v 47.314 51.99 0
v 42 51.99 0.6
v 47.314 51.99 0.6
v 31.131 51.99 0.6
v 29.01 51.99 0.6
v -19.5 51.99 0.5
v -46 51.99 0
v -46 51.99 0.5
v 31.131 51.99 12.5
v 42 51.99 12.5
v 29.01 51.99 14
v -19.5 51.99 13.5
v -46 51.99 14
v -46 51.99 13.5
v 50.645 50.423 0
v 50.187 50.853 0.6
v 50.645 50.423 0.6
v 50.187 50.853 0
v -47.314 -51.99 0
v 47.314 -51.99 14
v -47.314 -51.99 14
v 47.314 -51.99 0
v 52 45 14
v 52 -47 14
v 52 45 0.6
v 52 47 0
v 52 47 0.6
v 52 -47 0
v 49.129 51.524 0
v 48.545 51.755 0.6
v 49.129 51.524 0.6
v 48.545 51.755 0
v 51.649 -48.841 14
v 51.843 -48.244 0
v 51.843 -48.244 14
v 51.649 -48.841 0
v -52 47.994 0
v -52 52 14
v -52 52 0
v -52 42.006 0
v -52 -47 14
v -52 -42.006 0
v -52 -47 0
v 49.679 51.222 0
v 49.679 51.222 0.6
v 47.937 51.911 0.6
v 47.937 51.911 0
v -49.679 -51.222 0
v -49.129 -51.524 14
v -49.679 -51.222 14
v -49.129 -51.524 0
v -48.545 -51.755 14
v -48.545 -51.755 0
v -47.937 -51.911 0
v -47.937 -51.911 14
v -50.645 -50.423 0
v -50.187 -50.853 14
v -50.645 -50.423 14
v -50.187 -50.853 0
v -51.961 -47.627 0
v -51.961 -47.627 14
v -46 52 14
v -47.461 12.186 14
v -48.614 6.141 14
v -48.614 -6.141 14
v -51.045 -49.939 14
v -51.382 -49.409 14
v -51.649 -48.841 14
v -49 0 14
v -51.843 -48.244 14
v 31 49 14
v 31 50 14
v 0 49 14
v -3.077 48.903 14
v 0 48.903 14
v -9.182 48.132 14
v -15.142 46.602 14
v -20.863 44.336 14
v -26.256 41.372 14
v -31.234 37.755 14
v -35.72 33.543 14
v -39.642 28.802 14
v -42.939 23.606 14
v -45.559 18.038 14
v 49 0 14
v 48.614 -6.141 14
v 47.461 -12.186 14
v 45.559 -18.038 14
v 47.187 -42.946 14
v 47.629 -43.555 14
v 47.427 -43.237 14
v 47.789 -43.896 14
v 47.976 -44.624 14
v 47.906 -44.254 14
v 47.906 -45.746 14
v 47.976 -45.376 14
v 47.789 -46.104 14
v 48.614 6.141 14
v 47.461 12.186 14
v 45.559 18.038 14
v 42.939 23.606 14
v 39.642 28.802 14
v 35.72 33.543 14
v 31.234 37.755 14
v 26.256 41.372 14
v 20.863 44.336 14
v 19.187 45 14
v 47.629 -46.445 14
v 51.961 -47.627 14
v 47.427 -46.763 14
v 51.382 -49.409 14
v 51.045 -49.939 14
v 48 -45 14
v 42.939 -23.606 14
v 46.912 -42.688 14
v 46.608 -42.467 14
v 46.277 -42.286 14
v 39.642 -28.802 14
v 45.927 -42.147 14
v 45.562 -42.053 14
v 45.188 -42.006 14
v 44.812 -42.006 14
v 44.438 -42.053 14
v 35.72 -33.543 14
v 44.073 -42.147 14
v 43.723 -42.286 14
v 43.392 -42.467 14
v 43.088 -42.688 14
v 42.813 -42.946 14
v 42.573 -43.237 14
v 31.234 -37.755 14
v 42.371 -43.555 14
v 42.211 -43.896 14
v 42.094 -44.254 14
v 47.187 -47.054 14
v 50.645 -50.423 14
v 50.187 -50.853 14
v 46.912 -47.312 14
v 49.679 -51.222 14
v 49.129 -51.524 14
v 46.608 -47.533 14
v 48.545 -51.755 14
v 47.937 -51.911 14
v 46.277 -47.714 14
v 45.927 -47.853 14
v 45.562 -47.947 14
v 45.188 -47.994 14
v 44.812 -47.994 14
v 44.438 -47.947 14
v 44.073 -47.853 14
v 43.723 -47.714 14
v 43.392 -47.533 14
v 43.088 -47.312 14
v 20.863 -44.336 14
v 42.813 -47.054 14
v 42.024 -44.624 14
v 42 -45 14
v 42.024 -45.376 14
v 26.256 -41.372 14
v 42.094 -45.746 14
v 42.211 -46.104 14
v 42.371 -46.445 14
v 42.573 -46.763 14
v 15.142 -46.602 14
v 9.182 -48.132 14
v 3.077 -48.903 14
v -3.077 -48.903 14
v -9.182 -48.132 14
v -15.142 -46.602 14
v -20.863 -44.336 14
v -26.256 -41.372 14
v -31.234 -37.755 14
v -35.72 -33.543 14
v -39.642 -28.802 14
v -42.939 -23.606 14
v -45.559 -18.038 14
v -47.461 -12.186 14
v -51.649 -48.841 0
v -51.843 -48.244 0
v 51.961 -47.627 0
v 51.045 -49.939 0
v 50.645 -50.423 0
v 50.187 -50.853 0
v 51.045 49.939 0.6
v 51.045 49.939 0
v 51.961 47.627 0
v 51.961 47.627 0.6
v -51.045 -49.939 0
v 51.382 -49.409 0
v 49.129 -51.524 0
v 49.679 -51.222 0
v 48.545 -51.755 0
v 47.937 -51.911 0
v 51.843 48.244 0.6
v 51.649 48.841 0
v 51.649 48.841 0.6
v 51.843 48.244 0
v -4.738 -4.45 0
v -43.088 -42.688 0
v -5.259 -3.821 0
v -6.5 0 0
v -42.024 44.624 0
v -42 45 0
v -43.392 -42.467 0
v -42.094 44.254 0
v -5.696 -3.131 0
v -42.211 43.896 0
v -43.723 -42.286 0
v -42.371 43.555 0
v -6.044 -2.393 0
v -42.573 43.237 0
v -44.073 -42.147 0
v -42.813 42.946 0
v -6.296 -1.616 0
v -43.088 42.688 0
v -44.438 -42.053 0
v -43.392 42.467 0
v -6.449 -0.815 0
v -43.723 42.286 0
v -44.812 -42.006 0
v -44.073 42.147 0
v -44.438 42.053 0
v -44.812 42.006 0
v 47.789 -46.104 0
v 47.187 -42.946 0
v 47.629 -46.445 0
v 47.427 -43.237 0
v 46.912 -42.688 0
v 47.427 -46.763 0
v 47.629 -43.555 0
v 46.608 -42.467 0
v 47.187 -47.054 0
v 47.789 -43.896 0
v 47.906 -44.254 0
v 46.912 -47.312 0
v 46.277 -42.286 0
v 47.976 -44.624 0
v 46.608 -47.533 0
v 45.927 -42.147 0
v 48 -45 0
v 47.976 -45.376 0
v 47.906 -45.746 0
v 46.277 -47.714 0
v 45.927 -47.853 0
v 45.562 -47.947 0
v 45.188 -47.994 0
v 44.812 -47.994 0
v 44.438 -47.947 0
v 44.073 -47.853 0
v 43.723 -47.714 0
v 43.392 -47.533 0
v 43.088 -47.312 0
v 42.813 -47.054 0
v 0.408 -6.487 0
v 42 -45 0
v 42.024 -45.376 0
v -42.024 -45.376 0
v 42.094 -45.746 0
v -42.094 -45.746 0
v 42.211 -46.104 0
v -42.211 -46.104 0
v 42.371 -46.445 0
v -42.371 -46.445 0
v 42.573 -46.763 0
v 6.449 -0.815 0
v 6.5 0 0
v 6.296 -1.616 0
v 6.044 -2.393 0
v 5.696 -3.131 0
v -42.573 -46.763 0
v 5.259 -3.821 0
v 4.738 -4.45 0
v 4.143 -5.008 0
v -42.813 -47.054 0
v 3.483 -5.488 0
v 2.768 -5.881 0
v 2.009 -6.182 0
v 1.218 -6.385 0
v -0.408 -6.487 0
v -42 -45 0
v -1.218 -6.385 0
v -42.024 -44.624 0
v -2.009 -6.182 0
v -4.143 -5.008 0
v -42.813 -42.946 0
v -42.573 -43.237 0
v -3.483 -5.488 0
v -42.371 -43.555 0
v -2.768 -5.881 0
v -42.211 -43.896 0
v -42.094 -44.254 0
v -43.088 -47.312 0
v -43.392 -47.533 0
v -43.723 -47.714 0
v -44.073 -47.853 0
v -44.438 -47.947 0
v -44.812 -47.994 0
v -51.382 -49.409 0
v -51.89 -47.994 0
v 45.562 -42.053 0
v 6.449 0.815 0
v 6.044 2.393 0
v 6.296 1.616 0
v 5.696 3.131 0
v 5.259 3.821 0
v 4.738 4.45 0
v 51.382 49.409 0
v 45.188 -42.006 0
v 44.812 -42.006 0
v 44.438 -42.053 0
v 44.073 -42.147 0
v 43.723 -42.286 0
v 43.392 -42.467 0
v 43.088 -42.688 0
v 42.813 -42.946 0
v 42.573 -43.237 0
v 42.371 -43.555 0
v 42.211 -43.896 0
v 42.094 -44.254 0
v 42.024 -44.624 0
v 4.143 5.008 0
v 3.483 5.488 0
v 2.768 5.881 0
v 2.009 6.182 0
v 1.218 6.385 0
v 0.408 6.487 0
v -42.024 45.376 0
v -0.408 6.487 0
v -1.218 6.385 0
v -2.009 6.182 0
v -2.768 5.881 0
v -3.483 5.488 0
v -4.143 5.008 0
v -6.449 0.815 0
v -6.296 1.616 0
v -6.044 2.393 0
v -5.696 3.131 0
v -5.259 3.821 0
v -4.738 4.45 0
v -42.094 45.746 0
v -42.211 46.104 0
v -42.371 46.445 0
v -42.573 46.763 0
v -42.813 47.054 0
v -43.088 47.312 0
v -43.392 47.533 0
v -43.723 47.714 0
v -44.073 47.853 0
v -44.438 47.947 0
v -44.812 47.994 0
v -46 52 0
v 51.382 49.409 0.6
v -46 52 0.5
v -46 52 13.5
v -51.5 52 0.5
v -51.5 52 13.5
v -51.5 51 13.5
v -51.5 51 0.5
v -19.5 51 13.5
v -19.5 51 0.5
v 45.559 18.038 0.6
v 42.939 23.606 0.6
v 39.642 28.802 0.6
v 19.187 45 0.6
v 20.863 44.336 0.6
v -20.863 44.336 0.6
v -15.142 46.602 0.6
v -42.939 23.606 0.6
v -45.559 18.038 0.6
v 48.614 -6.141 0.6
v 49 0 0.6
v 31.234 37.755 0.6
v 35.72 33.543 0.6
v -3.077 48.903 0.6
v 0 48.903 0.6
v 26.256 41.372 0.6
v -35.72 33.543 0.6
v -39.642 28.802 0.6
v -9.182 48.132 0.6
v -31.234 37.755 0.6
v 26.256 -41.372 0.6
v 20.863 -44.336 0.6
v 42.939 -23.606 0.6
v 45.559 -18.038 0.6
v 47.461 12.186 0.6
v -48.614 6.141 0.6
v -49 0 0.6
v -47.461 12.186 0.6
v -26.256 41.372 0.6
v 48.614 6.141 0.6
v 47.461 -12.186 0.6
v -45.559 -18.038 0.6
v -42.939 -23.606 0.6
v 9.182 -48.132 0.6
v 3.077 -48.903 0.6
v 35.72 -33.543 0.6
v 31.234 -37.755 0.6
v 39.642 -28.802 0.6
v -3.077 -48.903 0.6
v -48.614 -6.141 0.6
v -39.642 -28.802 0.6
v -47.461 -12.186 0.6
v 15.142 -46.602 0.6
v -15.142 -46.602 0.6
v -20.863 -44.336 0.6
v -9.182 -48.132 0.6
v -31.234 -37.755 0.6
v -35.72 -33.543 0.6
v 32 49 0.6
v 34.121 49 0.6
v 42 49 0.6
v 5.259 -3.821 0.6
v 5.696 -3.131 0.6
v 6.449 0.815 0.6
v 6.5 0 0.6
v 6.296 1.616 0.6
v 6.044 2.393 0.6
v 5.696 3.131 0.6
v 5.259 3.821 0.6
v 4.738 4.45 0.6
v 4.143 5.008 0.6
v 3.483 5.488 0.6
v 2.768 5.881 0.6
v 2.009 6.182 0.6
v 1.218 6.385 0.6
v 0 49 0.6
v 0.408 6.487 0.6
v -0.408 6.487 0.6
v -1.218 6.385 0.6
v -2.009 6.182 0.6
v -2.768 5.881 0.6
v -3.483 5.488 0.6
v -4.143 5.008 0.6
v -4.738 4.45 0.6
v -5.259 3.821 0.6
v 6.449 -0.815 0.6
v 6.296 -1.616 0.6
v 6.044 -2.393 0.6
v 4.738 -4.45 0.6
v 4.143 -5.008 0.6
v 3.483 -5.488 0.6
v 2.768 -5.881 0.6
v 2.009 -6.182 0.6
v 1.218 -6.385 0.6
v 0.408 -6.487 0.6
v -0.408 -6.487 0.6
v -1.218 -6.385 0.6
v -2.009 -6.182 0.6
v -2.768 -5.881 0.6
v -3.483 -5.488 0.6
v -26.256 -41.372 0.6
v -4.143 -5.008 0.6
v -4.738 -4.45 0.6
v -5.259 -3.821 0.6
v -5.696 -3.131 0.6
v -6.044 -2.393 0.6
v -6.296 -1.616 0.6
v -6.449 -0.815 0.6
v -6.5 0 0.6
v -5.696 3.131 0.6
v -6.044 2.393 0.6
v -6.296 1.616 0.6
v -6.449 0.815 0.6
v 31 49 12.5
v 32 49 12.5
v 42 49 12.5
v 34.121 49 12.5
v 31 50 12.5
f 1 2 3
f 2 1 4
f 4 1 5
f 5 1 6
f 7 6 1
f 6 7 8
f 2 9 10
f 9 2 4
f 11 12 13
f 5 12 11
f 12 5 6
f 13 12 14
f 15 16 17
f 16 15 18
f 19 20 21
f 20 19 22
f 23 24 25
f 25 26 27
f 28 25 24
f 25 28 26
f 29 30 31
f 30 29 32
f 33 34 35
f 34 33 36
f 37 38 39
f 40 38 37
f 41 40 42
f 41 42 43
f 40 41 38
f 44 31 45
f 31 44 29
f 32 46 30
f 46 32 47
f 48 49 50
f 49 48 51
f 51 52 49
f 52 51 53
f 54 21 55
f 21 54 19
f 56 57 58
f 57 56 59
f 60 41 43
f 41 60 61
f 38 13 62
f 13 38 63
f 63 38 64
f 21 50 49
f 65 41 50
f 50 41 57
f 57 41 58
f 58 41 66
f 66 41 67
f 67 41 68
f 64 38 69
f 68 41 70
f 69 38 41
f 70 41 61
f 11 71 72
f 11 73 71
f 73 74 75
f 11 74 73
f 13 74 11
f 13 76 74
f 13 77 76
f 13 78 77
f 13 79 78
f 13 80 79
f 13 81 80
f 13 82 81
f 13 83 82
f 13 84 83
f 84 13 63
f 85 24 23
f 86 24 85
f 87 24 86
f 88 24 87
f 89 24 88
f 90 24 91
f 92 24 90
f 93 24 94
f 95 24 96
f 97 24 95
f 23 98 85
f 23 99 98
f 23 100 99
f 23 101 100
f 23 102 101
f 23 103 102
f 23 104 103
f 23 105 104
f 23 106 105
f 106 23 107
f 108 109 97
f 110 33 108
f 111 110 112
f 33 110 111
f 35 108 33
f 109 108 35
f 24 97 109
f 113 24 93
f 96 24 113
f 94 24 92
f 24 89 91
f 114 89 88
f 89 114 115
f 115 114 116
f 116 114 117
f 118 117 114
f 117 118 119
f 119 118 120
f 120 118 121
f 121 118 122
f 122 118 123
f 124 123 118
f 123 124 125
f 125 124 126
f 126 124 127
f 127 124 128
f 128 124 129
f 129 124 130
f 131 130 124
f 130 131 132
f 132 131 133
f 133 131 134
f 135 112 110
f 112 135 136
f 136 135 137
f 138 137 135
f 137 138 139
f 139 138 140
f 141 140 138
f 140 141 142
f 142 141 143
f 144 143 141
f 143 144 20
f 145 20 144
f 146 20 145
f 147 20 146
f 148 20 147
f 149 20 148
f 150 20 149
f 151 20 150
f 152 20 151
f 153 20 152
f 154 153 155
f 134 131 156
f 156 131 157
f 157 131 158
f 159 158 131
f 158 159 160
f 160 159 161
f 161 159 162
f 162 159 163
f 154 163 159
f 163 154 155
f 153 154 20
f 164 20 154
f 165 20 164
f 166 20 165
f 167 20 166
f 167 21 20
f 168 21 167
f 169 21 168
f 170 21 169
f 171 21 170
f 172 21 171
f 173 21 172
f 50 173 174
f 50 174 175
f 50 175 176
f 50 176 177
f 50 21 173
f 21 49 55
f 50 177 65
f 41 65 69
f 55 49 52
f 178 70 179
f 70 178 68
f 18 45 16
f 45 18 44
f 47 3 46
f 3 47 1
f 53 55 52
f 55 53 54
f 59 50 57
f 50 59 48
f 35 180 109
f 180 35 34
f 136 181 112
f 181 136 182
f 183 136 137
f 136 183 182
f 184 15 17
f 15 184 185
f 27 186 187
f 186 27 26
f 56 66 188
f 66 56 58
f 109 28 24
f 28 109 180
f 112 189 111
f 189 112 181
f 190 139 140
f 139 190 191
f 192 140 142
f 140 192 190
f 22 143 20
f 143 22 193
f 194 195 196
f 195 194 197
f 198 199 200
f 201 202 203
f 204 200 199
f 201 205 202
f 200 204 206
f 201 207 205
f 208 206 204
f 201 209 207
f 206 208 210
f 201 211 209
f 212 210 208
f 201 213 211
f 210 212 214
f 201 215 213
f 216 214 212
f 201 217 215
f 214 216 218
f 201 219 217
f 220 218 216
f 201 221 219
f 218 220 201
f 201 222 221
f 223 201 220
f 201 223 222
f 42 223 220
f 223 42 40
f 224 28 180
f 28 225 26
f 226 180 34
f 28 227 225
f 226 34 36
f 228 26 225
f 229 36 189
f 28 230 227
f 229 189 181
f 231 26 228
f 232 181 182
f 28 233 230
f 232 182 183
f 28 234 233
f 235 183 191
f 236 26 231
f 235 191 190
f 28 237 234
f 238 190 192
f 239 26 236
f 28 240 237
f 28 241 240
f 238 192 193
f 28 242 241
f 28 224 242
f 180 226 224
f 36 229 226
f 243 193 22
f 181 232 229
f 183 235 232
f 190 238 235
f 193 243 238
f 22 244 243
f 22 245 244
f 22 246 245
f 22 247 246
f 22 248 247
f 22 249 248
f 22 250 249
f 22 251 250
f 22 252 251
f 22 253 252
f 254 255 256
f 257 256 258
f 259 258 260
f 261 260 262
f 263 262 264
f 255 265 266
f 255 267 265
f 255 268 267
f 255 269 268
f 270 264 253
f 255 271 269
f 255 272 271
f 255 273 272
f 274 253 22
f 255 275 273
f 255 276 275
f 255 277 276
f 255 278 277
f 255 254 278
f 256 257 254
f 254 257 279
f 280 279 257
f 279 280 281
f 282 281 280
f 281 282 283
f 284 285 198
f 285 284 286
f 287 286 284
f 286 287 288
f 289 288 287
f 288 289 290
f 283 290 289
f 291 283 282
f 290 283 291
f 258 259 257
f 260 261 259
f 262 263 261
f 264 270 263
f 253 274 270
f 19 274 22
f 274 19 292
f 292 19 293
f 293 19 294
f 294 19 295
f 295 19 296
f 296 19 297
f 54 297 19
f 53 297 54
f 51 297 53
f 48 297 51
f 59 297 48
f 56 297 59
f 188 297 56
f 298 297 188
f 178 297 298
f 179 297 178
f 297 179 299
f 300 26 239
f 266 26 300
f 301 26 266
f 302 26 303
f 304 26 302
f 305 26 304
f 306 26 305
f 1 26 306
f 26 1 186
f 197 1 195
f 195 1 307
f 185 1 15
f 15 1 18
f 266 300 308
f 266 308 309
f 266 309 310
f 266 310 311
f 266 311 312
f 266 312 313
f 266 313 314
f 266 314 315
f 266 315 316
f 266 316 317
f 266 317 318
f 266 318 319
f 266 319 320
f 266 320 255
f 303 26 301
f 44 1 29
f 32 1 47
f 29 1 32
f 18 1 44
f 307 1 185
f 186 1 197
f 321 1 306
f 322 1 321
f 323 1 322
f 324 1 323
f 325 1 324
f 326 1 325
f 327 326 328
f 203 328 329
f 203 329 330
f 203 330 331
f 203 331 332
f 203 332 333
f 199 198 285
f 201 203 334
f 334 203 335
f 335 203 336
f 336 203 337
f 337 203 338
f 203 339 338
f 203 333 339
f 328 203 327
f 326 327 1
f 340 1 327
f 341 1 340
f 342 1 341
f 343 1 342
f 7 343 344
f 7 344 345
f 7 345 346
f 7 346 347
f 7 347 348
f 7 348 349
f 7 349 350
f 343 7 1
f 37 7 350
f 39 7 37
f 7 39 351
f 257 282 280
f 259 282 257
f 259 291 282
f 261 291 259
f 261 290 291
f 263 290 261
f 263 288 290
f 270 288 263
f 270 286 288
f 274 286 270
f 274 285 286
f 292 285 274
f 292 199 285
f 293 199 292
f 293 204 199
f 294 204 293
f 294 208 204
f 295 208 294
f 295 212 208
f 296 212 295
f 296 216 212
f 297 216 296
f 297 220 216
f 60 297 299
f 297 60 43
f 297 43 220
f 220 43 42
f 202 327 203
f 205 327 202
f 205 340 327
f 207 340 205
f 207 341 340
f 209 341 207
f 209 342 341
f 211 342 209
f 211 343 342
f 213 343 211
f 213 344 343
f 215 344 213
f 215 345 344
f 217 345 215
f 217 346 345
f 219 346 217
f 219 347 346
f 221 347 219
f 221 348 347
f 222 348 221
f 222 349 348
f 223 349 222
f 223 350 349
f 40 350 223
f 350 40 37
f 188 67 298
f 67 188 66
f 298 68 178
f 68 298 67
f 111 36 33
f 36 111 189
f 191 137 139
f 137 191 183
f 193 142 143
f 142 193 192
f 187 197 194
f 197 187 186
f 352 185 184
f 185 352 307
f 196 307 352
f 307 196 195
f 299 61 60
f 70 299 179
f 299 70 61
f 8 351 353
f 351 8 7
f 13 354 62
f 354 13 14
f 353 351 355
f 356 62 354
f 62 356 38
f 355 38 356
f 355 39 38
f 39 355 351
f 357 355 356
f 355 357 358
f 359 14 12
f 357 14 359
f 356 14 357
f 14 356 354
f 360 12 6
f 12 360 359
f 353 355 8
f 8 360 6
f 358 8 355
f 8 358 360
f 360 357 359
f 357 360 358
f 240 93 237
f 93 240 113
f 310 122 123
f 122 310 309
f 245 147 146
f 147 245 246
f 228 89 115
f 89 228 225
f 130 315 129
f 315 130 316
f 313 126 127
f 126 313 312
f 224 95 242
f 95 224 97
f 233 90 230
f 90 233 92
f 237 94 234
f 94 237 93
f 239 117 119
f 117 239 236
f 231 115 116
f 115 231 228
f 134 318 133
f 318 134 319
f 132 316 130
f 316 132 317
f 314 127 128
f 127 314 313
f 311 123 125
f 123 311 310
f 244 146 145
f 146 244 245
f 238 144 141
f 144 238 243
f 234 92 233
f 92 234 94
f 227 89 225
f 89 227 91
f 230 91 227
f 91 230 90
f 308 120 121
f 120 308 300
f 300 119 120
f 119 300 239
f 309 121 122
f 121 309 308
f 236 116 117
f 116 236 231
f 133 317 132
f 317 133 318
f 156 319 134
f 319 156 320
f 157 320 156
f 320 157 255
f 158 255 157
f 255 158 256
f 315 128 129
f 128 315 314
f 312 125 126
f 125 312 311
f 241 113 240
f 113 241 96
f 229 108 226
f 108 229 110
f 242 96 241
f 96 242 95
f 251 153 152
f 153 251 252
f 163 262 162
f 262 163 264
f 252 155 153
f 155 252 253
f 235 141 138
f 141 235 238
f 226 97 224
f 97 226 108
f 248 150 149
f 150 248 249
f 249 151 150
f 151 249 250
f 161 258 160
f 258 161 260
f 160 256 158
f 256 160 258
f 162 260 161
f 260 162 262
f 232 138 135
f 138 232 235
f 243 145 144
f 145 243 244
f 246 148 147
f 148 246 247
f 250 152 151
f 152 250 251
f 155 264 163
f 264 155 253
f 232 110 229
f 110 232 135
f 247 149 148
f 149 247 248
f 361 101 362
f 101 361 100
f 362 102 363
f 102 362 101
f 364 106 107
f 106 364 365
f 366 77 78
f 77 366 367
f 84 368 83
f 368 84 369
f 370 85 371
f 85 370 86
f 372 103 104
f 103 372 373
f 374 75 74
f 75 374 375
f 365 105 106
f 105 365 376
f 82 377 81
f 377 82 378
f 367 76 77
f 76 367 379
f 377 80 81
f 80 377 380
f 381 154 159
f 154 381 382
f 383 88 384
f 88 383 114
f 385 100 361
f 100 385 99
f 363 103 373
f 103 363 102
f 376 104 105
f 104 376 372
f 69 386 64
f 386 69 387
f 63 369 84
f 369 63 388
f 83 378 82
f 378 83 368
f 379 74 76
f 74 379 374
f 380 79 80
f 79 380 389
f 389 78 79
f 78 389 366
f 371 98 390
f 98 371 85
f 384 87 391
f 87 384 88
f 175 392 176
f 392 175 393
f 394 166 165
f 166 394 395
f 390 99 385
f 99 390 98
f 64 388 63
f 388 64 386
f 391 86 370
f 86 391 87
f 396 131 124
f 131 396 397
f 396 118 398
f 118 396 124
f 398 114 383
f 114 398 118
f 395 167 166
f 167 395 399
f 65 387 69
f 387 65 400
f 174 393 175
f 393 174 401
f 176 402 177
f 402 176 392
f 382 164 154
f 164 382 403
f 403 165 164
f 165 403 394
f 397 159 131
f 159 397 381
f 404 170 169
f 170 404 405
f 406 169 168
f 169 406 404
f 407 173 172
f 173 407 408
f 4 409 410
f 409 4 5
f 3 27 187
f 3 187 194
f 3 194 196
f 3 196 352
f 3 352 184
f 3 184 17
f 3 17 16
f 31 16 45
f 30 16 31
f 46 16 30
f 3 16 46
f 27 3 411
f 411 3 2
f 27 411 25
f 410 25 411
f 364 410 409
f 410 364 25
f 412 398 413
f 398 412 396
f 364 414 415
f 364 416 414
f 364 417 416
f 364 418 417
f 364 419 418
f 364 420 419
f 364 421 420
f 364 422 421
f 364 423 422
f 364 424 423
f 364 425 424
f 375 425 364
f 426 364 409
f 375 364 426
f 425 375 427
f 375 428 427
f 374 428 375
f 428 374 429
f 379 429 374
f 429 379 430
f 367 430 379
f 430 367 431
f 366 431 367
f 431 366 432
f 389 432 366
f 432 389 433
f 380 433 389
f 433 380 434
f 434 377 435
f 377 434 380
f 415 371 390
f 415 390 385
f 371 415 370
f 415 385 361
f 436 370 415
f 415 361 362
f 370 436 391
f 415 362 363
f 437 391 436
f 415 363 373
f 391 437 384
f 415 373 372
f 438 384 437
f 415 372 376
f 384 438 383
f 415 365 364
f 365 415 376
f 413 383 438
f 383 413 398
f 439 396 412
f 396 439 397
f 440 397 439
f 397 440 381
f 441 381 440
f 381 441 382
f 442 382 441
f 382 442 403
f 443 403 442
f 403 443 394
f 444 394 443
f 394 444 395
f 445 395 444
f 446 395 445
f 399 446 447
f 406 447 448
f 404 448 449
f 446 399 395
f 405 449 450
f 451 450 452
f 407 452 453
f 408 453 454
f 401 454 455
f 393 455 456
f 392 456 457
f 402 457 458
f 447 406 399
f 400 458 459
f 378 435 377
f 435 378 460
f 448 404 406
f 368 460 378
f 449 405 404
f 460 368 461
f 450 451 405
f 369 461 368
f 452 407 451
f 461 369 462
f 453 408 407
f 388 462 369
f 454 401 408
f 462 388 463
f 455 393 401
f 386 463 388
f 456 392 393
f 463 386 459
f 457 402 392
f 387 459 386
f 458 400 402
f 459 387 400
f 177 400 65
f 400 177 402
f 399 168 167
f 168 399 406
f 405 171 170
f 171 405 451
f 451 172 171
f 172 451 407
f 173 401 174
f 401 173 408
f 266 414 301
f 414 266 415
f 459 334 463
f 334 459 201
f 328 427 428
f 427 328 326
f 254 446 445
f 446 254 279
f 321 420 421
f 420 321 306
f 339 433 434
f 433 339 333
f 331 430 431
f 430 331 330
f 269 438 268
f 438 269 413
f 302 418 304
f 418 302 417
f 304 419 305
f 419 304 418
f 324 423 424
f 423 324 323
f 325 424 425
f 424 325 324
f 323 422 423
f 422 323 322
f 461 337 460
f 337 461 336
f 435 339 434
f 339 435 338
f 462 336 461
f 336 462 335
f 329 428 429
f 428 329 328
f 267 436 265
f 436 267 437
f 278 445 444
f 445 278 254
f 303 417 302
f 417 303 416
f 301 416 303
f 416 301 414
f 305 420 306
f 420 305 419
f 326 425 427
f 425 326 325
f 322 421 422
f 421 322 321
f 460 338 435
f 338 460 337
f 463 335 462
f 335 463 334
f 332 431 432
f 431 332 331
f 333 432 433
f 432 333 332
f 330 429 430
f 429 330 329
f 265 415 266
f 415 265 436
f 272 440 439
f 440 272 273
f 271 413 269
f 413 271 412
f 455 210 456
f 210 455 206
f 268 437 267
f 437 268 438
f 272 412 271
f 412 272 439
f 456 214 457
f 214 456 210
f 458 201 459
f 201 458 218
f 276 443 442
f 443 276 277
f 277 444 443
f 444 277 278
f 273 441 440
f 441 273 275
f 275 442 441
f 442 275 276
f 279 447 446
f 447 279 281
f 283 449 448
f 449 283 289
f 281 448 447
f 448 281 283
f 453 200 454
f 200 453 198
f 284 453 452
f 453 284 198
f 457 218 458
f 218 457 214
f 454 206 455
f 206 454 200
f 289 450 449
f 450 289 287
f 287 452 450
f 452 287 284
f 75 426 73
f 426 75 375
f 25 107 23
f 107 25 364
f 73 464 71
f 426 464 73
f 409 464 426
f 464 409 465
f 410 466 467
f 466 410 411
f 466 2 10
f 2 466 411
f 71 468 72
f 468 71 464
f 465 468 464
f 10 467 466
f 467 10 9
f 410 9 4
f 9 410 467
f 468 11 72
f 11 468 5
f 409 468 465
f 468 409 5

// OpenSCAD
$fn = 50;


difference() {
	union() {
		hull() {
			translate(v = [-47.0000000000, 47.0000000000, 0]) {
				cylinder(h = 14, r = 5);
			}
			translate(v = [47.0000000000, 47.0000000000, 0]) {
				cylinder(h = 14, r = 5);
			}
			translate(v = [-47.0000000000, -47.0000000000, 0]) {
				cylinder(h = 14, r = 5);
			}
			translate(v = [47.0000000000, -47.0000000000, 0]) {
				cylinder(h = 14, r = 5);
			}
		}
		translate(v = [-52.0000000000, 46.0000000000, 0]) {
			cube(size = [6, 6, 14]);
		}
	}
	union() {
		translate(v = [-52.5000000000, -45.0000000000, -250.0000000000]) {
			rotate(a = [0, 0, 0]) {
				difference() {
					union() {
						hull() {
							translate(v = [7.5000000000, 0, 0]) {
								cylinder(h = 250, r = 3.0000000000, r1 = 3.0000000000, r2 = 3.0000000000);
							}
							translate(v = [-7.5000000000, 0, 0]) {
								cylinder(h = 250, r = 3.0000000000, r1 = 3.0000000000, r2 = 3.0000000000);
							}
						}
					}
					union();
				}
			}
		}
		translate(v = [-52.5000000000, 45.0000000000, -250.0000000000]) {
			rotate(a = [0, 0, 0]) {
				difference() {
					union() {
						hull() {
							translate(v = [7.5000000000, 0, 0]) {
								cylinder(h = 250, r = 3.0000000000, r1 = 3.0000000000, r2 = 3.0000000000);
							}
							translate(v = [-7.5000000000, 0, 0]) {
								cylinder(h = 250, r = 3.0000000000, r1 = 3.0000000000, r2 = 3.0000000000);
							}
						}
					}
					union();
				}
			}
		}
		translate(v = [-51.5000000000, 51.0000000000, 0.5000000000]) {
			cube(size = [32, 1, 13.0000000000]);
		}
		translate(v = [45.0000000000, -45.0000000000, -50.0000000000]) {
			cylinder(h = 100, r = 3.0000000000);
		}
		translate(v = [0, 0, 0.6000000000]) {
			cylinder(h = 16.4000000000, r = 49.0000000000);
		}
		translate(v = [0, 0, -7.0000000000]) {
			cylinder(h = 14, r = 6.5000000000);
		}
		translate(v = [0.0000000000, 45.0000000000, 0.6000000000]) {
			cube(size = [52.0000000000, 4, 16.4000000000]);
		}
		translate(v = [42.0000000000, 45.0000000000, 0.6000000000]) {
			cube(size = [10, 7, 16.4000000000]);
		}
		translate(v = [31.0000000000, 45.0000000000, 12.5000000000]) {
			cube(size = [21, 7, 1.5000000000]);
		}
		translate(v = [28.2500000000, 52.7500000000, 0.6000000000]) {
			rotate(a = [0, 0, -45]) {
				cube(size = [7.5000000000, 1.5000000000, 16.4000000000]);
			}
		}
		translate(v = [11.0610000000, 43.0000000000, 0.6000000000]) {
			cube(size = [7.5000000000, 2, 13.4000000000]);
		}
	}
}
